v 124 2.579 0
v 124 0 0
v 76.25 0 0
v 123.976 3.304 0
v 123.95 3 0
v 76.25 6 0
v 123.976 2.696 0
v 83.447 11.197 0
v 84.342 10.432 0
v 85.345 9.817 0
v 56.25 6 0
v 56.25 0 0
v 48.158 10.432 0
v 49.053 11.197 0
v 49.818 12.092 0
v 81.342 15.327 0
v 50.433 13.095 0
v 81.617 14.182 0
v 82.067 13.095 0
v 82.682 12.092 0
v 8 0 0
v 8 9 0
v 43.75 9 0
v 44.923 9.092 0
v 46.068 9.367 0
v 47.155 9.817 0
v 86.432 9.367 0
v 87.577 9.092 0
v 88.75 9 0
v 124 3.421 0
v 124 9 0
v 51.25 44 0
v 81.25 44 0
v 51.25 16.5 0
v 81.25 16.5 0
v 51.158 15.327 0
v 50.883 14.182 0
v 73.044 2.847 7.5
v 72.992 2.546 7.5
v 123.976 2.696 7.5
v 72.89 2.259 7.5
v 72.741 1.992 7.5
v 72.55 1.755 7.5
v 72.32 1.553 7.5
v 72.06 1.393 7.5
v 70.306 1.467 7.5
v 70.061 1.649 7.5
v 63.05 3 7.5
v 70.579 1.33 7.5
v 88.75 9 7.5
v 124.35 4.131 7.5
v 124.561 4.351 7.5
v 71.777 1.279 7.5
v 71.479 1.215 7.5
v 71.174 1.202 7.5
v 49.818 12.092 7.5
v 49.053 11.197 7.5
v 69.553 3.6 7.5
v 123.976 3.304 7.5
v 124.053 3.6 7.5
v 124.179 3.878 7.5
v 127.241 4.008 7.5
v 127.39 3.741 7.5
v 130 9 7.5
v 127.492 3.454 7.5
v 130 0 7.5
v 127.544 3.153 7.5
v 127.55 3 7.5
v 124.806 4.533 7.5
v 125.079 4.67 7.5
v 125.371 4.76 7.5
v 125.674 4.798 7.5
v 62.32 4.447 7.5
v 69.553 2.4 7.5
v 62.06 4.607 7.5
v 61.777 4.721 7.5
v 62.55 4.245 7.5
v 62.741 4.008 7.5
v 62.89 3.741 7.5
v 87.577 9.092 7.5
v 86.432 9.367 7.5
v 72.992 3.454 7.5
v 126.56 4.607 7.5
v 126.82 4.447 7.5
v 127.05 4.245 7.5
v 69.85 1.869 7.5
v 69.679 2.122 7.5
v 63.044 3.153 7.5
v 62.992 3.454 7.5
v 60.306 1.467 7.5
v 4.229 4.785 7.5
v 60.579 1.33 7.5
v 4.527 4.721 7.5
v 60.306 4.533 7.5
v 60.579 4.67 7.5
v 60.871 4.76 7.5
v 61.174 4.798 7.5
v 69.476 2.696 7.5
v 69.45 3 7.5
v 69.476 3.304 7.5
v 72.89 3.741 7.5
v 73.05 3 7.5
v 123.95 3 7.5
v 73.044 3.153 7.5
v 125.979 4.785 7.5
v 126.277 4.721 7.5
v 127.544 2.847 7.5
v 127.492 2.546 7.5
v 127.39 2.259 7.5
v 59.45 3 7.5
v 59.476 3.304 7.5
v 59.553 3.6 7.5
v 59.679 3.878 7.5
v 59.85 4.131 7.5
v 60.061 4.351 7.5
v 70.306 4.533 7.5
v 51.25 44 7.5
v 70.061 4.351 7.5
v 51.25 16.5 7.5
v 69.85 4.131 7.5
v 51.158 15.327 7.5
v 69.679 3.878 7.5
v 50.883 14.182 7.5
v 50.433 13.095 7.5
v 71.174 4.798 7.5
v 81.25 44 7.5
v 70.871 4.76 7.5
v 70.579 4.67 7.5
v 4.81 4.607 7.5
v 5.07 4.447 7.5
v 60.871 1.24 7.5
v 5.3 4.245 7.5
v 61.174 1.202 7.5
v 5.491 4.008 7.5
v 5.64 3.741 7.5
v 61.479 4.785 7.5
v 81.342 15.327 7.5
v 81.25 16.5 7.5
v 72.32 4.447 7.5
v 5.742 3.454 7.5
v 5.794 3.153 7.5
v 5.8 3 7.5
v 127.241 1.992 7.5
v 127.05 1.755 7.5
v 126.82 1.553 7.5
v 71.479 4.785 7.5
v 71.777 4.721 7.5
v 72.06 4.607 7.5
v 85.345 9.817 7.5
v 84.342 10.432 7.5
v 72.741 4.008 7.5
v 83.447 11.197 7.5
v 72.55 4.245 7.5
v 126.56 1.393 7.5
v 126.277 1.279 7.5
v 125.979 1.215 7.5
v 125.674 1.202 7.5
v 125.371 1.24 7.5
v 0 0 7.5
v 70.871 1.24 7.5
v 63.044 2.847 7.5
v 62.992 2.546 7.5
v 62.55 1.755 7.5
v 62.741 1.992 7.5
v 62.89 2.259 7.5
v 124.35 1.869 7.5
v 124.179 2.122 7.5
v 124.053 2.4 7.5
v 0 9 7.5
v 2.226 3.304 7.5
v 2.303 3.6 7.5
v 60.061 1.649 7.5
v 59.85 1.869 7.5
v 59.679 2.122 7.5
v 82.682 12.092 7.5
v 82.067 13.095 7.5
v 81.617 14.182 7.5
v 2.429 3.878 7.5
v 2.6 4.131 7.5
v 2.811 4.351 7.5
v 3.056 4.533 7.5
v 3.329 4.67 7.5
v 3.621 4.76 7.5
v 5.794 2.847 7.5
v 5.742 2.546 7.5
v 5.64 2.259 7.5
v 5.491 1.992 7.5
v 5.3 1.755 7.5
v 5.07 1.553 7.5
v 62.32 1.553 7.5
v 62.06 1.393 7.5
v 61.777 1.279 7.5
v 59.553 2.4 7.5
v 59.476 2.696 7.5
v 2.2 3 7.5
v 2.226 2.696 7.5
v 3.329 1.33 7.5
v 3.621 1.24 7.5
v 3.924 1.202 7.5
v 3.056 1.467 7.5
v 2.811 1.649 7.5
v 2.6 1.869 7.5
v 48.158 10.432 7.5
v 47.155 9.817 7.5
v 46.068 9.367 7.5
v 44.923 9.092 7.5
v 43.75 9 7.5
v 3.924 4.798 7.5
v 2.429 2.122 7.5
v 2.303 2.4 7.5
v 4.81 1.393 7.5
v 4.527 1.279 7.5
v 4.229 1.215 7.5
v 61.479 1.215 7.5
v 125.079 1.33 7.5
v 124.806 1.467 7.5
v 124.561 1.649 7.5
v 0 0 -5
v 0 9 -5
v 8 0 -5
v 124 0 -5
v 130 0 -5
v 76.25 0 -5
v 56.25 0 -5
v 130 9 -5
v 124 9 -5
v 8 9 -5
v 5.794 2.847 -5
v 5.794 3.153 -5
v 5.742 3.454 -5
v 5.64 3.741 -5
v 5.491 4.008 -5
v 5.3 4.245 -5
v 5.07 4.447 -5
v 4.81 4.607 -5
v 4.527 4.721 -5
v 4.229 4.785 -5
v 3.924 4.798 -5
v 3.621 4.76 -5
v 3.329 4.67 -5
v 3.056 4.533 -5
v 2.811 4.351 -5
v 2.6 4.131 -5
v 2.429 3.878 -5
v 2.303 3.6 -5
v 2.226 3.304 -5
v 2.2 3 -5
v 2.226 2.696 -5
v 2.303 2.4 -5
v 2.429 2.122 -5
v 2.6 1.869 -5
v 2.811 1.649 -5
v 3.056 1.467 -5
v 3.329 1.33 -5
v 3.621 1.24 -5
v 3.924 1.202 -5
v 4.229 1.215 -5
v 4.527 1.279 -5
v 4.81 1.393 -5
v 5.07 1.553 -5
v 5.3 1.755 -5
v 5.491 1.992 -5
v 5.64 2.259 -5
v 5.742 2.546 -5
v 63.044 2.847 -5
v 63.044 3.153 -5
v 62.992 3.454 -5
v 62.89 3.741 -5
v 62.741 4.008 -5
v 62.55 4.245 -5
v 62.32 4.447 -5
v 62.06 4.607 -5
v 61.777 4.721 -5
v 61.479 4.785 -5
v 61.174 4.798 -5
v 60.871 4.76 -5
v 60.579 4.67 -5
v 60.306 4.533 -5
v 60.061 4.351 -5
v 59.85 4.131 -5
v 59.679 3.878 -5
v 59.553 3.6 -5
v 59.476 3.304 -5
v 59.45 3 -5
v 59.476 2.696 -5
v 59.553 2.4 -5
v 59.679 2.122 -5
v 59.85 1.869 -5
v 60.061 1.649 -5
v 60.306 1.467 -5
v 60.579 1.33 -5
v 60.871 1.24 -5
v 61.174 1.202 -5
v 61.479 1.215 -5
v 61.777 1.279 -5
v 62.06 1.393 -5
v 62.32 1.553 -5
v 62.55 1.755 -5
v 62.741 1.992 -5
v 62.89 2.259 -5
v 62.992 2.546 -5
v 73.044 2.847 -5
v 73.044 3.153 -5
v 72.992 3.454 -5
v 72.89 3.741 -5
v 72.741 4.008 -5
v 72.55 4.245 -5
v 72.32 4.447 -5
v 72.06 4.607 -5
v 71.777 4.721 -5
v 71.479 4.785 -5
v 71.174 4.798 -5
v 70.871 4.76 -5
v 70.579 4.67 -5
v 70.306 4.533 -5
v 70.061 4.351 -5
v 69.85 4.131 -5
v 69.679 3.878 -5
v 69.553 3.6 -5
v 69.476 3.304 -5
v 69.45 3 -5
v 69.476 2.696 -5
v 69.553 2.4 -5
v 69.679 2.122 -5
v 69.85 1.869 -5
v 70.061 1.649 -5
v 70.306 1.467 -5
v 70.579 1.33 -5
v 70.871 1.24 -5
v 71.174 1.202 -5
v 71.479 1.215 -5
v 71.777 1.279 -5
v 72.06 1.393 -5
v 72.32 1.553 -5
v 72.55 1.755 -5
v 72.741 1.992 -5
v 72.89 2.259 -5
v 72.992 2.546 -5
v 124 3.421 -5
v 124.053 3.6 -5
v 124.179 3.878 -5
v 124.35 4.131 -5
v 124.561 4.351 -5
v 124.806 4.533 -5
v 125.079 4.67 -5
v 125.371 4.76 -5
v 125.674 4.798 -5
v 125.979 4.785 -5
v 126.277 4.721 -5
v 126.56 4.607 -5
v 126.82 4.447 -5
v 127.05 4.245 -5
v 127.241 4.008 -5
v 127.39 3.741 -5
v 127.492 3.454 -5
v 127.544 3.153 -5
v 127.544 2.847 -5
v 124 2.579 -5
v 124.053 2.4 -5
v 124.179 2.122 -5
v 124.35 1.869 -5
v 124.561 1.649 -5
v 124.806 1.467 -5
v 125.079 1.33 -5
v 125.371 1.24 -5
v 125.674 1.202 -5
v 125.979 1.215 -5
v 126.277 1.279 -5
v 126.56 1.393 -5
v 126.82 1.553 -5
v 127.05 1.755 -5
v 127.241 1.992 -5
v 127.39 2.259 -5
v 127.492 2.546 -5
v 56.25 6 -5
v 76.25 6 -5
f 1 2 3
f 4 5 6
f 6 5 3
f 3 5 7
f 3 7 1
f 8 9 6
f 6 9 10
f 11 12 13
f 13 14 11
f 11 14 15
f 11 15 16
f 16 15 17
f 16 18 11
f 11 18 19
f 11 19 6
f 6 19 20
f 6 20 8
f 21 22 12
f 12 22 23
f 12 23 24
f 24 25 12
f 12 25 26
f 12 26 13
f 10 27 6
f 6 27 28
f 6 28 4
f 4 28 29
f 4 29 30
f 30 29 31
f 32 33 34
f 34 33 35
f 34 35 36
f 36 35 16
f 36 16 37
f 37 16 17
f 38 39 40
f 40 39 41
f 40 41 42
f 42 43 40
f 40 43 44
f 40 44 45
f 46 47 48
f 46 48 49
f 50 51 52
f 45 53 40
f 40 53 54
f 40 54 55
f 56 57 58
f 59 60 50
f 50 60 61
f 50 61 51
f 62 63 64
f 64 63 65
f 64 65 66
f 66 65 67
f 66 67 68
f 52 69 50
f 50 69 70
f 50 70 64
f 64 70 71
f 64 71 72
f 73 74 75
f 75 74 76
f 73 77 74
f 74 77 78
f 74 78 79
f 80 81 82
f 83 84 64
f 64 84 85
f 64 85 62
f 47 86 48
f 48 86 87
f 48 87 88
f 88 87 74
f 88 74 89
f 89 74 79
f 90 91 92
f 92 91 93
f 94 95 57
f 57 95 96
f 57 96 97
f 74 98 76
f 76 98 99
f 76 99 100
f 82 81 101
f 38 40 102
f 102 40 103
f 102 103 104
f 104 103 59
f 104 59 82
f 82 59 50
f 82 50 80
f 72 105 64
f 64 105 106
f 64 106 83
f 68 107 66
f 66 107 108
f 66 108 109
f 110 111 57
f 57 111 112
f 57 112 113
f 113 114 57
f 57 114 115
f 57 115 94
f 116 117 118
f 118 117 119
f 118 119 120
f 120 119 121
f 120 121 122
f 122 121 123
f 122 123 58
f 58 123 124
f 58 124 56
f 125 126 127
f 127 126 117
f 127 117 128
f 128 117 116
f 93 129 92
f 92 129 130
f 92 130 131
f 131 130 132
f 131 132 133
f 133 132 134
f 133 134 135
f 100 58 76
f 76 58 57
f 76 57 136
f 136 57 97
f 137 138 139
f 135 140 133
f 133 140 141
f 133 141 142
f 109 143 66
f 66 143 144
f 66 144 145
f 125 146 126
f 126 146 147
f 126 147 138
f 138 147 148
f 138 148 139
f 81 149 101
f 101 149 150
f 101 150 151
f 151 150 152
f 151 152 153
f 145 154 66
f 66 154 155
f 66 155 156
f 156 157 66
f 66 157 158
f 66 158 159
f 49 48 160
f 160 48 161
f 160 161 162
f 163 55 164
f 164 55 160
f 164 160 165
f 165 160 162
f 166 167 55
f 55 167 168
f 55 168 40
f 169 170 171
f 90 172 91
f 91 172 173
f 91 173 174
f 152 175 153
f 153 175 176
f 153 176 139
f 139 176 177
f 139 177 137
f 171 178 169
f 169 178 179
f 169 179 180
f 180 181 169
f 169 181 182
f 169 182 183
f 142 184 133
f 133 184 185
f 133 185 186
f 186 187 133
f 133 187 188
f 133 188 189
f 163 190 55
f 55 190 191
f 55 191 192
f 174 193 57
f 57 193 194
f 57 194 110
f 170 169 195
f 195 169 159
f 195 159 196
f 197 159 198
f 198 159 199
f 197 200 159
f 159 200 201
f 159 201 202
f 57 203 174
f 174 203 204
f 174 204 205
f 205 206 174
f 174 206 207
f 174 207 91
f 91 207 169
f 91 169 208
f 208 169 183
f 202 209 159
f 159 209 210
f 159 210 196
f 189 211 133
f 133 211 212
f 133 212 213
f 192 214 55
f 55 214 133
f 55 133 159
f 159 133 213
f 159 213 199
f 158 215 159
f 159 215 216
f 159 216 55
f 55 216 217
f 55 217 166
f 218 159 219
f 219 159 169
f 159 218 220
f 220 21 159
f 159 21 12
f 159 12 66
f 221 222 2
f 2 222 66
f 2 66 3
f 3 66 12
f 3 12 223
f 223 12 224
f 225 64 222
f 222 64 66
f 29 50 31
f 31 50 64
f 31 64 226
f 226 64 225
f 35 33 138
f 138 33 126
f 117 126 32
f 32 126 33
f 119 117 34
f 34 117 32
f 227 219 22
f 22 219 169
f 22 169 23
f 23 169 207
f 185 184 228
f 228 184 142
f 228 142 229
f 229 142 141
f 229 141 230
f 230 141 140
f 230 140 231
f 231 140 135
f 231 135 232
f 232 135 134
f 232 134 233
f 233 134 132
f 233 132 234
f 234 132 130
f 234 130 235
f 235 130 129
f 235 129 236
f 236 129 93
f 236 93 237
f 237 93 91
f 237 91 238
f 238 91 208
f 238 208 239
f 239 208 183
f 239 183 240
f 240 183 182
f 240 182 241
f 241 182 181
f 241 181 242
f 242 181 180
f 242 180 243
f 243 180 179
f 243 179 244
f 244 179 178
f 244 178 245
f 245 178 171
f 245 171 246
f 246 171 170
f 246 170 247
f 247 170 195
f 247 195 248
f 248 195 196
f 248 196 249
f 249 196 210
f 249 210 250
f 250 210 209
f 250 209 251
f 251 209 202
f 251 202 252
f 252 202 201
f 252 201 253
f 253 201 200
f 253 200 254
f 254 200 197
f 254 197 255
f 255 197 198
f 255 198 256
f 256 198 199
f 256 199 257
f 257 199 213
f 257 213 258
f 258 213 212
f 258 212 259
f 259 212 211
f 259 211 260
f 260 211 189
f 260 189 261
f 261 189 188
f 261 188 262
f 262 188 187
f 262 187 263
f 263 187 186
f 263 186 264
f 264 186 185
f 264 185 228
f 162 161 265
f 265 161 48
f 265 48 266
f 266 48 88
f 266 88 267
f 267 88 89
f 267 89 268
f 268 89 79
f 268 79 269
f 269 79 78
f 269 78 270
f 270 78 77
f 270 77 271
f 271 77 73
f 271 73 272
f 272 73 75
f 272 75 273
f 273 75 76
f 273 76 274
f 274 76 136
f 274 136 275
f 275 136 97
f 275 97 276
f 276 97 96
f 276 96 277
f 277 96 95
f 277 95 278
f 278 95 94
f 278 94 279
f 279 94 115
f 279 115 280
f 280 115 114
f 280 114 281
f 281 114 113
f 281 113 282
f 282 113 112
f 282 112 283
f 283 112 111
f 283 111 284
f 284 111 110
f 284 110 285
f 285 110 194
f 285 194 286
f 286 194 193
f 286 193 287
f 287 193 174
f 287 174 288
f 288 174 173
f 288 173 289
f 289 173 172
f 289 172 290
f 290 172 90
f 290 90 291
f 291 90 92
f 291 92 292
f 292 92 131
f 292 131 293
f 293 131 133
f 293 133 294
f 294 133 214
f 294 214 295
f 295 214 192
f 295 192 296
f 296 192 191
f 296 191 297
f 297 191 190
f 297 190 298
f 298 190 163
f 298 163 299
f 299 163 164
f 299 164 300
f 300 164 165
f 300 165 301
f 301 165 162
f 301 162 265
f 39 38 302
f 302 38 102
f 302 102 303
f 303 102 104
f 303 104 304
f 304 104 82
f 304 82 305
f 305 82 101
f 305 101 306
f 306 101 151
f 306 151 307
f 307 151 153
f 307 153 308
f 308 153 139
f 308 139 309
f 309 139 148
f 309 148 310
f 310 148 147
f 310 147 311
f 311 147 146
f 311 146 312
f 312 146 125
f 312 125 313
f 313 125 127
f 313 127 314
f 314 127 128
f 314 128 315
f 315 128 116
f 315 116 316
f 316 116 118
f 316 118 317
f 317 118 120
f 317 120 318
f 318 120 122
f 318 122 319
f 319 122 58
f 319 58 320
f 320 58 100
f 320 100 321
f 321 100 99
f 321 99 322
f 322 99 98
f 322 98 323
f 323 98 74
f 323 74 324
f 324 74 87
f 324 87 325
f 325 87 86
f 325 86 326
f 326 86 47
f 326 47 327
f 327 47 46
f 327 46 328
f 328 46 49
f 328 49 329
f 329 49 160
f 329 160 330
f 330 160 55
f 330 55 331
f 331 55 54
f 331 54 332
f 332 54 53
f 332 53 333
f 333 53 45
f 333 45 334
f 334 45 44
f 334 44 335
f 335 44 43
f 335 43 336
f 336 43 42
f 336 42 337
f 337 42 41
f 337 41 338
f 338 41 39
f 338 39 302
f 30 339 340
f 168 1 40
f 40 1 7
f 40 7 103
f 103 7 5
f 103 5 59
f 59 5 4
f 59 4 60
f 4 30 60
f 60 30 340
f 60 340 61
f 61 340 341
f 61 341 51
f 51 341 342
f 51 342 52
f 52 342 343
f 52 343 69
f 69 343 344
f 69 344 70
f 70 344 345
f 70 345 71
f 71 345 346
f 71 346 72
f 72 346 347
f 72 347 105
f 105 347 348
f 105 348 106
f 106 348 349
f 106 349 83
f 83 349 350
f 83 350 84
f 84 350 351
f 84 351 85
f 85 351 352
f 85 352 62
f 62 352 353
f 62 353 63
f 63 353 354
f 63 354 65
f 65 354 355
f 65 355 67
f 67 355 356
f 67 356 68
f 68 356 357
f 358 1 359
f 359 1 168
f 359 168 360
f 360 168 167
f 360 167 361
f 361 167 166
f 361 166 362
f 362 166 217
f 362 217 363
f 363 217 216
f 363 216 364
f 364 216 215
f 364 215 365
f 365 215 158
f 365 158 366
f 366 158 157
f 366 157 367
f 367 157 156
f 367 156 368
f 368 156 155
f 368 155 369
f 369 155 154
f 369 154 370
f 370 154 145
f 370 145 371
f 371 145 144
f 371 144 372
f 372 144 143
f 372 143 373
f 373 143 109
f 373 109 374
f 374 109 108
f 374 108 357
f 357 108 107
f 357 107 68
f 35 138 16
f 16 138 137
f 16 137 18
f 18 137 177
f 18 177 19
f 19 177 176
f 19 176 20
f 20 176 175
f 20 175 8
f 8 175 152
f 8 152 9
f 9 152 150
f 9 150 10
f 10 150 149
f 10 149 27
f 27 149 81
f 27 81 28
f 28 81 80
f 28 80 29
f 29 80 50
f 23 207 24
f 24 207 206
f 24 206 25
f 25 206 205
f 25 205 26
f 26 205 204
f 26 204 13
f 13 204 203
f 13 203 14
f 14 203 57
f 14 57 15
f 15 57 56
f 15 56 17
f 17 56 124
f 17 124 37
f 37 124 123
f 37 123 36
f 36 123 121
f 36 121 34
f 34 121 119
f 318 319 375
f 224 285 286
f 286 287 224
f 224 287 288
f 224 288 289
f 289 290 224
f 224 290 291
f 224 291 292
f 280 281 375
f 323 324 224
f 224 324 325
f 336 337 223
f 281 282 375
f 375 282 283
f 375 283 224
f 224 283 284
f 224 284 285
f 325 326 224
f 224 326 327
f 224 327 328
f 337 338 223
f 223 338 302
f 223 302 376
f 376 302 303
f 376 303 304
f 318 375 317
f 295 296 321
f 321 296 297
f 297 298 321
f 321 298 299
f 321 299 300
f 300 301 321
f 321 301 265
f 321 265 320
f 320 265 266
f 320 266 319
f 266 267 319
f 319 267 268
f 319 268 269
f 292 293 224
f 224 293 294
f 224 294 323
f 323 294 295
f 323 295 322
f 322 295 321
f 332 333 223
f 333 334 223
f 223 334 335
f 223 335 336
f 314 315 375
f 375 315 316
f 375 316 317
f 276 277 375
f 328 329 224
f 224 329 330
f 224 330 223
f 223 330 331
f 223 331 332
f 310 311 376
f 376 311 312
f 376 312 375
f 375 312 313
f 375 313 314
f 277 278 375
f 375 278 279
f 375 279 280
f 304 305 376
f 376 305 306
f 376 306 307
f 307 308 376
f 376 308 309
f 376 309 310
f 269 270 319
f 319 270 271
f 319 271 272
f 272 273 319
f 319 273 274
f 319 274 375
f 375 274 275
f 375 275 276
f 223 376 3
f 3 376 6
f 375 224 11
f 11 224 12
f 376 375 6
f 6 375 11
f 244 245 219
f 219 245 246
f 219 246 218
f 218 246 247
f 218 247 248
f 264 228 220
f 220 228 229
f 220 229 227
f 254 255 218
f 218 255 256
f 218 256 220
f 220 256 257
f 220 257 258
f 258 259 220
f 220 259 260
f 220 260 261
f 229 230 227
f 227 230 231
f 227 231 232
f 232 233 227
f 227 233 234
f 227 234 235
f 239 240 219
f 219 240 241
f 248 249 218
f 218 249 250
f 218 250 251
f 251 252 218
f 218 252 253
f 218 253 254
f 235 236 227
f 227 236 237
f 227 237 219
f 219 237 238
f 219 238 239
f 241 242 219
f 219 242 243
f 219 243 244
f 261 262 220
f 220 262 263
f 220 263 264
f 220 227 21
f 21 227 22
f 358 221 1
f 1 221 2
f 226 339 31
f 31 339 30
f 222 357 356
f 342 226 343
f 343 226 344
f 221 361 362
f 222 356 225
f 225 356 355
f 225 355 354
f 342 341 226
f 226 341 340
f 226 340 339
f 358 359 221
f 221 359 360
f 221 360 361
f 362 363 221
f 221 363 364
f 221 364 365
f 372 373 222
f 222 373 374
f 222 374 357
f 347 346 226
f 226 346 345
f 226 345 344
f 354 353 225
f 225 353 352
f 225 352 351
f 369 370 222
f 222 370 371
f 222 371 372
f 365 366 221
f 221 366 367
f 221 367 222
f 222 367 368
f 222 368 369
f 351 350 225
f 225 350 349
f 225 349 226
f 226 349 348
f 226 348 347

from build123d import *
from build123d.topology import SkipClean

# Parameters (mm, degrees)
SKETCH1_R               = 1.8
MOUNTING_FACE_DEPTH     = 7.5
CELL_SUPPORT_FILLETS_R  = 7.5
MIDLINE_START           = 5
SKETCH3_W               = 20
SKETCH3_H               = 6
SKETCH3_R               = 1.8
SKETCH3_W_2             = 8
SKETCH3_H_2             = 9
MIDLINE_EXTENSION_DEPTH = 5


with BuildPart() as part:
    # Sketch1 → Mounting Face (new body)
    with BuildSketch(Plane.XY):
        Polygon((130, 0), (130, 9), (81.25, 9), (81.25, 44), (51.25, 44), (51.25, 9), (0, 9), (0, 0), align=None)
        with Locations((4, 3)):
            Circle(SKETCH1_R, mode=Mode.SUBTRACT)
        with Locations((61.25, 3)):
            Circle(SKETCH1_R, mode=Mode.SUBTRACT)
        with Locations((71.25, 3)):
            Circle(SKETCH1_R, mode=Mode.SUBTRACT)
        with Locations((125.75, 3)):
            Circle(SKETCH1_R, mode=Mode.SUBTRACT)
    extrude(amount=MOUNTING_FACE_DEPTH)

    # Cell Support Fillets
    cell_support_fillets_edges = [part.edges().sort_by_distance(p)[0] for p in [
        (51.25, 9, 3.75),
        (81.25, 9, 3.75),
    ]]
    fillet(cell_support_fillets_edges, radius=CELL_SUPPORT_FILLETS_R)

    # Sketch3 → Midline Extension (add)
    # profile 1 of 3: a face of its own
    with SkipClean():  # the faces are left unmerged after this step: merging them gives an invalid solid
        with BuildSketch(Plane(origin=(0, 0, 0), x_dir=(-1, 0, 0), z_dir=(0, 0, -1)).offset(MIDLINE_START)):
            with Locations((-66.25, 3)):
                Rectangle(SKETCH3_W, SKETCH3_H)
            with Locations((-71.25, 3)):
                Circle(SKETCH3_R, mode=Mode.SUBTRACT)
            with Locations((-61.25, 3)):
                Circle(SKETCH3_R, mode=Mode.SUBTRACT)
        # profile 2 of 3: a face of its own
        with BuildSketch(Plane(origin=(0, 0, 0), x_dir=(-1, 0, 0), z_dir=(0, 0, -1)).offset(MIDLINE_START)):
            with Locations((-4, 4.5)):
                Rectangle(SKETCH3_W_2, SKETCH3_H_2)
            with Locations((-4, 3)):
                Circle(SKETCH3_R, mode=Mode.SUBTRACT)
        # profile 3 of 3: a face of its own
        with BuildSketch(Plane(origin=(0, 0, 0), x_dir=(-1, 0, 0), z_dir=(0, 0, -1)).offset(MIDLINE_START)):
            with BuildLine():
                Line((-130, 0), (-124, 0))
                Line((-124, 0), (-124, 2.578692511))
                ThreePointArc((-124, 2.578692511), (-127.55, 3), (-124, 3.421307489))
                Line((-124, 3.421307489), (-124, 9))
                Line((-124, 9), (-130, 9))
                Line((-130, 9), (-130, 0))
            make_face()
        extrude(amount=-MIDLINE_EXTENSION_DEPTH)


solid = part.part
